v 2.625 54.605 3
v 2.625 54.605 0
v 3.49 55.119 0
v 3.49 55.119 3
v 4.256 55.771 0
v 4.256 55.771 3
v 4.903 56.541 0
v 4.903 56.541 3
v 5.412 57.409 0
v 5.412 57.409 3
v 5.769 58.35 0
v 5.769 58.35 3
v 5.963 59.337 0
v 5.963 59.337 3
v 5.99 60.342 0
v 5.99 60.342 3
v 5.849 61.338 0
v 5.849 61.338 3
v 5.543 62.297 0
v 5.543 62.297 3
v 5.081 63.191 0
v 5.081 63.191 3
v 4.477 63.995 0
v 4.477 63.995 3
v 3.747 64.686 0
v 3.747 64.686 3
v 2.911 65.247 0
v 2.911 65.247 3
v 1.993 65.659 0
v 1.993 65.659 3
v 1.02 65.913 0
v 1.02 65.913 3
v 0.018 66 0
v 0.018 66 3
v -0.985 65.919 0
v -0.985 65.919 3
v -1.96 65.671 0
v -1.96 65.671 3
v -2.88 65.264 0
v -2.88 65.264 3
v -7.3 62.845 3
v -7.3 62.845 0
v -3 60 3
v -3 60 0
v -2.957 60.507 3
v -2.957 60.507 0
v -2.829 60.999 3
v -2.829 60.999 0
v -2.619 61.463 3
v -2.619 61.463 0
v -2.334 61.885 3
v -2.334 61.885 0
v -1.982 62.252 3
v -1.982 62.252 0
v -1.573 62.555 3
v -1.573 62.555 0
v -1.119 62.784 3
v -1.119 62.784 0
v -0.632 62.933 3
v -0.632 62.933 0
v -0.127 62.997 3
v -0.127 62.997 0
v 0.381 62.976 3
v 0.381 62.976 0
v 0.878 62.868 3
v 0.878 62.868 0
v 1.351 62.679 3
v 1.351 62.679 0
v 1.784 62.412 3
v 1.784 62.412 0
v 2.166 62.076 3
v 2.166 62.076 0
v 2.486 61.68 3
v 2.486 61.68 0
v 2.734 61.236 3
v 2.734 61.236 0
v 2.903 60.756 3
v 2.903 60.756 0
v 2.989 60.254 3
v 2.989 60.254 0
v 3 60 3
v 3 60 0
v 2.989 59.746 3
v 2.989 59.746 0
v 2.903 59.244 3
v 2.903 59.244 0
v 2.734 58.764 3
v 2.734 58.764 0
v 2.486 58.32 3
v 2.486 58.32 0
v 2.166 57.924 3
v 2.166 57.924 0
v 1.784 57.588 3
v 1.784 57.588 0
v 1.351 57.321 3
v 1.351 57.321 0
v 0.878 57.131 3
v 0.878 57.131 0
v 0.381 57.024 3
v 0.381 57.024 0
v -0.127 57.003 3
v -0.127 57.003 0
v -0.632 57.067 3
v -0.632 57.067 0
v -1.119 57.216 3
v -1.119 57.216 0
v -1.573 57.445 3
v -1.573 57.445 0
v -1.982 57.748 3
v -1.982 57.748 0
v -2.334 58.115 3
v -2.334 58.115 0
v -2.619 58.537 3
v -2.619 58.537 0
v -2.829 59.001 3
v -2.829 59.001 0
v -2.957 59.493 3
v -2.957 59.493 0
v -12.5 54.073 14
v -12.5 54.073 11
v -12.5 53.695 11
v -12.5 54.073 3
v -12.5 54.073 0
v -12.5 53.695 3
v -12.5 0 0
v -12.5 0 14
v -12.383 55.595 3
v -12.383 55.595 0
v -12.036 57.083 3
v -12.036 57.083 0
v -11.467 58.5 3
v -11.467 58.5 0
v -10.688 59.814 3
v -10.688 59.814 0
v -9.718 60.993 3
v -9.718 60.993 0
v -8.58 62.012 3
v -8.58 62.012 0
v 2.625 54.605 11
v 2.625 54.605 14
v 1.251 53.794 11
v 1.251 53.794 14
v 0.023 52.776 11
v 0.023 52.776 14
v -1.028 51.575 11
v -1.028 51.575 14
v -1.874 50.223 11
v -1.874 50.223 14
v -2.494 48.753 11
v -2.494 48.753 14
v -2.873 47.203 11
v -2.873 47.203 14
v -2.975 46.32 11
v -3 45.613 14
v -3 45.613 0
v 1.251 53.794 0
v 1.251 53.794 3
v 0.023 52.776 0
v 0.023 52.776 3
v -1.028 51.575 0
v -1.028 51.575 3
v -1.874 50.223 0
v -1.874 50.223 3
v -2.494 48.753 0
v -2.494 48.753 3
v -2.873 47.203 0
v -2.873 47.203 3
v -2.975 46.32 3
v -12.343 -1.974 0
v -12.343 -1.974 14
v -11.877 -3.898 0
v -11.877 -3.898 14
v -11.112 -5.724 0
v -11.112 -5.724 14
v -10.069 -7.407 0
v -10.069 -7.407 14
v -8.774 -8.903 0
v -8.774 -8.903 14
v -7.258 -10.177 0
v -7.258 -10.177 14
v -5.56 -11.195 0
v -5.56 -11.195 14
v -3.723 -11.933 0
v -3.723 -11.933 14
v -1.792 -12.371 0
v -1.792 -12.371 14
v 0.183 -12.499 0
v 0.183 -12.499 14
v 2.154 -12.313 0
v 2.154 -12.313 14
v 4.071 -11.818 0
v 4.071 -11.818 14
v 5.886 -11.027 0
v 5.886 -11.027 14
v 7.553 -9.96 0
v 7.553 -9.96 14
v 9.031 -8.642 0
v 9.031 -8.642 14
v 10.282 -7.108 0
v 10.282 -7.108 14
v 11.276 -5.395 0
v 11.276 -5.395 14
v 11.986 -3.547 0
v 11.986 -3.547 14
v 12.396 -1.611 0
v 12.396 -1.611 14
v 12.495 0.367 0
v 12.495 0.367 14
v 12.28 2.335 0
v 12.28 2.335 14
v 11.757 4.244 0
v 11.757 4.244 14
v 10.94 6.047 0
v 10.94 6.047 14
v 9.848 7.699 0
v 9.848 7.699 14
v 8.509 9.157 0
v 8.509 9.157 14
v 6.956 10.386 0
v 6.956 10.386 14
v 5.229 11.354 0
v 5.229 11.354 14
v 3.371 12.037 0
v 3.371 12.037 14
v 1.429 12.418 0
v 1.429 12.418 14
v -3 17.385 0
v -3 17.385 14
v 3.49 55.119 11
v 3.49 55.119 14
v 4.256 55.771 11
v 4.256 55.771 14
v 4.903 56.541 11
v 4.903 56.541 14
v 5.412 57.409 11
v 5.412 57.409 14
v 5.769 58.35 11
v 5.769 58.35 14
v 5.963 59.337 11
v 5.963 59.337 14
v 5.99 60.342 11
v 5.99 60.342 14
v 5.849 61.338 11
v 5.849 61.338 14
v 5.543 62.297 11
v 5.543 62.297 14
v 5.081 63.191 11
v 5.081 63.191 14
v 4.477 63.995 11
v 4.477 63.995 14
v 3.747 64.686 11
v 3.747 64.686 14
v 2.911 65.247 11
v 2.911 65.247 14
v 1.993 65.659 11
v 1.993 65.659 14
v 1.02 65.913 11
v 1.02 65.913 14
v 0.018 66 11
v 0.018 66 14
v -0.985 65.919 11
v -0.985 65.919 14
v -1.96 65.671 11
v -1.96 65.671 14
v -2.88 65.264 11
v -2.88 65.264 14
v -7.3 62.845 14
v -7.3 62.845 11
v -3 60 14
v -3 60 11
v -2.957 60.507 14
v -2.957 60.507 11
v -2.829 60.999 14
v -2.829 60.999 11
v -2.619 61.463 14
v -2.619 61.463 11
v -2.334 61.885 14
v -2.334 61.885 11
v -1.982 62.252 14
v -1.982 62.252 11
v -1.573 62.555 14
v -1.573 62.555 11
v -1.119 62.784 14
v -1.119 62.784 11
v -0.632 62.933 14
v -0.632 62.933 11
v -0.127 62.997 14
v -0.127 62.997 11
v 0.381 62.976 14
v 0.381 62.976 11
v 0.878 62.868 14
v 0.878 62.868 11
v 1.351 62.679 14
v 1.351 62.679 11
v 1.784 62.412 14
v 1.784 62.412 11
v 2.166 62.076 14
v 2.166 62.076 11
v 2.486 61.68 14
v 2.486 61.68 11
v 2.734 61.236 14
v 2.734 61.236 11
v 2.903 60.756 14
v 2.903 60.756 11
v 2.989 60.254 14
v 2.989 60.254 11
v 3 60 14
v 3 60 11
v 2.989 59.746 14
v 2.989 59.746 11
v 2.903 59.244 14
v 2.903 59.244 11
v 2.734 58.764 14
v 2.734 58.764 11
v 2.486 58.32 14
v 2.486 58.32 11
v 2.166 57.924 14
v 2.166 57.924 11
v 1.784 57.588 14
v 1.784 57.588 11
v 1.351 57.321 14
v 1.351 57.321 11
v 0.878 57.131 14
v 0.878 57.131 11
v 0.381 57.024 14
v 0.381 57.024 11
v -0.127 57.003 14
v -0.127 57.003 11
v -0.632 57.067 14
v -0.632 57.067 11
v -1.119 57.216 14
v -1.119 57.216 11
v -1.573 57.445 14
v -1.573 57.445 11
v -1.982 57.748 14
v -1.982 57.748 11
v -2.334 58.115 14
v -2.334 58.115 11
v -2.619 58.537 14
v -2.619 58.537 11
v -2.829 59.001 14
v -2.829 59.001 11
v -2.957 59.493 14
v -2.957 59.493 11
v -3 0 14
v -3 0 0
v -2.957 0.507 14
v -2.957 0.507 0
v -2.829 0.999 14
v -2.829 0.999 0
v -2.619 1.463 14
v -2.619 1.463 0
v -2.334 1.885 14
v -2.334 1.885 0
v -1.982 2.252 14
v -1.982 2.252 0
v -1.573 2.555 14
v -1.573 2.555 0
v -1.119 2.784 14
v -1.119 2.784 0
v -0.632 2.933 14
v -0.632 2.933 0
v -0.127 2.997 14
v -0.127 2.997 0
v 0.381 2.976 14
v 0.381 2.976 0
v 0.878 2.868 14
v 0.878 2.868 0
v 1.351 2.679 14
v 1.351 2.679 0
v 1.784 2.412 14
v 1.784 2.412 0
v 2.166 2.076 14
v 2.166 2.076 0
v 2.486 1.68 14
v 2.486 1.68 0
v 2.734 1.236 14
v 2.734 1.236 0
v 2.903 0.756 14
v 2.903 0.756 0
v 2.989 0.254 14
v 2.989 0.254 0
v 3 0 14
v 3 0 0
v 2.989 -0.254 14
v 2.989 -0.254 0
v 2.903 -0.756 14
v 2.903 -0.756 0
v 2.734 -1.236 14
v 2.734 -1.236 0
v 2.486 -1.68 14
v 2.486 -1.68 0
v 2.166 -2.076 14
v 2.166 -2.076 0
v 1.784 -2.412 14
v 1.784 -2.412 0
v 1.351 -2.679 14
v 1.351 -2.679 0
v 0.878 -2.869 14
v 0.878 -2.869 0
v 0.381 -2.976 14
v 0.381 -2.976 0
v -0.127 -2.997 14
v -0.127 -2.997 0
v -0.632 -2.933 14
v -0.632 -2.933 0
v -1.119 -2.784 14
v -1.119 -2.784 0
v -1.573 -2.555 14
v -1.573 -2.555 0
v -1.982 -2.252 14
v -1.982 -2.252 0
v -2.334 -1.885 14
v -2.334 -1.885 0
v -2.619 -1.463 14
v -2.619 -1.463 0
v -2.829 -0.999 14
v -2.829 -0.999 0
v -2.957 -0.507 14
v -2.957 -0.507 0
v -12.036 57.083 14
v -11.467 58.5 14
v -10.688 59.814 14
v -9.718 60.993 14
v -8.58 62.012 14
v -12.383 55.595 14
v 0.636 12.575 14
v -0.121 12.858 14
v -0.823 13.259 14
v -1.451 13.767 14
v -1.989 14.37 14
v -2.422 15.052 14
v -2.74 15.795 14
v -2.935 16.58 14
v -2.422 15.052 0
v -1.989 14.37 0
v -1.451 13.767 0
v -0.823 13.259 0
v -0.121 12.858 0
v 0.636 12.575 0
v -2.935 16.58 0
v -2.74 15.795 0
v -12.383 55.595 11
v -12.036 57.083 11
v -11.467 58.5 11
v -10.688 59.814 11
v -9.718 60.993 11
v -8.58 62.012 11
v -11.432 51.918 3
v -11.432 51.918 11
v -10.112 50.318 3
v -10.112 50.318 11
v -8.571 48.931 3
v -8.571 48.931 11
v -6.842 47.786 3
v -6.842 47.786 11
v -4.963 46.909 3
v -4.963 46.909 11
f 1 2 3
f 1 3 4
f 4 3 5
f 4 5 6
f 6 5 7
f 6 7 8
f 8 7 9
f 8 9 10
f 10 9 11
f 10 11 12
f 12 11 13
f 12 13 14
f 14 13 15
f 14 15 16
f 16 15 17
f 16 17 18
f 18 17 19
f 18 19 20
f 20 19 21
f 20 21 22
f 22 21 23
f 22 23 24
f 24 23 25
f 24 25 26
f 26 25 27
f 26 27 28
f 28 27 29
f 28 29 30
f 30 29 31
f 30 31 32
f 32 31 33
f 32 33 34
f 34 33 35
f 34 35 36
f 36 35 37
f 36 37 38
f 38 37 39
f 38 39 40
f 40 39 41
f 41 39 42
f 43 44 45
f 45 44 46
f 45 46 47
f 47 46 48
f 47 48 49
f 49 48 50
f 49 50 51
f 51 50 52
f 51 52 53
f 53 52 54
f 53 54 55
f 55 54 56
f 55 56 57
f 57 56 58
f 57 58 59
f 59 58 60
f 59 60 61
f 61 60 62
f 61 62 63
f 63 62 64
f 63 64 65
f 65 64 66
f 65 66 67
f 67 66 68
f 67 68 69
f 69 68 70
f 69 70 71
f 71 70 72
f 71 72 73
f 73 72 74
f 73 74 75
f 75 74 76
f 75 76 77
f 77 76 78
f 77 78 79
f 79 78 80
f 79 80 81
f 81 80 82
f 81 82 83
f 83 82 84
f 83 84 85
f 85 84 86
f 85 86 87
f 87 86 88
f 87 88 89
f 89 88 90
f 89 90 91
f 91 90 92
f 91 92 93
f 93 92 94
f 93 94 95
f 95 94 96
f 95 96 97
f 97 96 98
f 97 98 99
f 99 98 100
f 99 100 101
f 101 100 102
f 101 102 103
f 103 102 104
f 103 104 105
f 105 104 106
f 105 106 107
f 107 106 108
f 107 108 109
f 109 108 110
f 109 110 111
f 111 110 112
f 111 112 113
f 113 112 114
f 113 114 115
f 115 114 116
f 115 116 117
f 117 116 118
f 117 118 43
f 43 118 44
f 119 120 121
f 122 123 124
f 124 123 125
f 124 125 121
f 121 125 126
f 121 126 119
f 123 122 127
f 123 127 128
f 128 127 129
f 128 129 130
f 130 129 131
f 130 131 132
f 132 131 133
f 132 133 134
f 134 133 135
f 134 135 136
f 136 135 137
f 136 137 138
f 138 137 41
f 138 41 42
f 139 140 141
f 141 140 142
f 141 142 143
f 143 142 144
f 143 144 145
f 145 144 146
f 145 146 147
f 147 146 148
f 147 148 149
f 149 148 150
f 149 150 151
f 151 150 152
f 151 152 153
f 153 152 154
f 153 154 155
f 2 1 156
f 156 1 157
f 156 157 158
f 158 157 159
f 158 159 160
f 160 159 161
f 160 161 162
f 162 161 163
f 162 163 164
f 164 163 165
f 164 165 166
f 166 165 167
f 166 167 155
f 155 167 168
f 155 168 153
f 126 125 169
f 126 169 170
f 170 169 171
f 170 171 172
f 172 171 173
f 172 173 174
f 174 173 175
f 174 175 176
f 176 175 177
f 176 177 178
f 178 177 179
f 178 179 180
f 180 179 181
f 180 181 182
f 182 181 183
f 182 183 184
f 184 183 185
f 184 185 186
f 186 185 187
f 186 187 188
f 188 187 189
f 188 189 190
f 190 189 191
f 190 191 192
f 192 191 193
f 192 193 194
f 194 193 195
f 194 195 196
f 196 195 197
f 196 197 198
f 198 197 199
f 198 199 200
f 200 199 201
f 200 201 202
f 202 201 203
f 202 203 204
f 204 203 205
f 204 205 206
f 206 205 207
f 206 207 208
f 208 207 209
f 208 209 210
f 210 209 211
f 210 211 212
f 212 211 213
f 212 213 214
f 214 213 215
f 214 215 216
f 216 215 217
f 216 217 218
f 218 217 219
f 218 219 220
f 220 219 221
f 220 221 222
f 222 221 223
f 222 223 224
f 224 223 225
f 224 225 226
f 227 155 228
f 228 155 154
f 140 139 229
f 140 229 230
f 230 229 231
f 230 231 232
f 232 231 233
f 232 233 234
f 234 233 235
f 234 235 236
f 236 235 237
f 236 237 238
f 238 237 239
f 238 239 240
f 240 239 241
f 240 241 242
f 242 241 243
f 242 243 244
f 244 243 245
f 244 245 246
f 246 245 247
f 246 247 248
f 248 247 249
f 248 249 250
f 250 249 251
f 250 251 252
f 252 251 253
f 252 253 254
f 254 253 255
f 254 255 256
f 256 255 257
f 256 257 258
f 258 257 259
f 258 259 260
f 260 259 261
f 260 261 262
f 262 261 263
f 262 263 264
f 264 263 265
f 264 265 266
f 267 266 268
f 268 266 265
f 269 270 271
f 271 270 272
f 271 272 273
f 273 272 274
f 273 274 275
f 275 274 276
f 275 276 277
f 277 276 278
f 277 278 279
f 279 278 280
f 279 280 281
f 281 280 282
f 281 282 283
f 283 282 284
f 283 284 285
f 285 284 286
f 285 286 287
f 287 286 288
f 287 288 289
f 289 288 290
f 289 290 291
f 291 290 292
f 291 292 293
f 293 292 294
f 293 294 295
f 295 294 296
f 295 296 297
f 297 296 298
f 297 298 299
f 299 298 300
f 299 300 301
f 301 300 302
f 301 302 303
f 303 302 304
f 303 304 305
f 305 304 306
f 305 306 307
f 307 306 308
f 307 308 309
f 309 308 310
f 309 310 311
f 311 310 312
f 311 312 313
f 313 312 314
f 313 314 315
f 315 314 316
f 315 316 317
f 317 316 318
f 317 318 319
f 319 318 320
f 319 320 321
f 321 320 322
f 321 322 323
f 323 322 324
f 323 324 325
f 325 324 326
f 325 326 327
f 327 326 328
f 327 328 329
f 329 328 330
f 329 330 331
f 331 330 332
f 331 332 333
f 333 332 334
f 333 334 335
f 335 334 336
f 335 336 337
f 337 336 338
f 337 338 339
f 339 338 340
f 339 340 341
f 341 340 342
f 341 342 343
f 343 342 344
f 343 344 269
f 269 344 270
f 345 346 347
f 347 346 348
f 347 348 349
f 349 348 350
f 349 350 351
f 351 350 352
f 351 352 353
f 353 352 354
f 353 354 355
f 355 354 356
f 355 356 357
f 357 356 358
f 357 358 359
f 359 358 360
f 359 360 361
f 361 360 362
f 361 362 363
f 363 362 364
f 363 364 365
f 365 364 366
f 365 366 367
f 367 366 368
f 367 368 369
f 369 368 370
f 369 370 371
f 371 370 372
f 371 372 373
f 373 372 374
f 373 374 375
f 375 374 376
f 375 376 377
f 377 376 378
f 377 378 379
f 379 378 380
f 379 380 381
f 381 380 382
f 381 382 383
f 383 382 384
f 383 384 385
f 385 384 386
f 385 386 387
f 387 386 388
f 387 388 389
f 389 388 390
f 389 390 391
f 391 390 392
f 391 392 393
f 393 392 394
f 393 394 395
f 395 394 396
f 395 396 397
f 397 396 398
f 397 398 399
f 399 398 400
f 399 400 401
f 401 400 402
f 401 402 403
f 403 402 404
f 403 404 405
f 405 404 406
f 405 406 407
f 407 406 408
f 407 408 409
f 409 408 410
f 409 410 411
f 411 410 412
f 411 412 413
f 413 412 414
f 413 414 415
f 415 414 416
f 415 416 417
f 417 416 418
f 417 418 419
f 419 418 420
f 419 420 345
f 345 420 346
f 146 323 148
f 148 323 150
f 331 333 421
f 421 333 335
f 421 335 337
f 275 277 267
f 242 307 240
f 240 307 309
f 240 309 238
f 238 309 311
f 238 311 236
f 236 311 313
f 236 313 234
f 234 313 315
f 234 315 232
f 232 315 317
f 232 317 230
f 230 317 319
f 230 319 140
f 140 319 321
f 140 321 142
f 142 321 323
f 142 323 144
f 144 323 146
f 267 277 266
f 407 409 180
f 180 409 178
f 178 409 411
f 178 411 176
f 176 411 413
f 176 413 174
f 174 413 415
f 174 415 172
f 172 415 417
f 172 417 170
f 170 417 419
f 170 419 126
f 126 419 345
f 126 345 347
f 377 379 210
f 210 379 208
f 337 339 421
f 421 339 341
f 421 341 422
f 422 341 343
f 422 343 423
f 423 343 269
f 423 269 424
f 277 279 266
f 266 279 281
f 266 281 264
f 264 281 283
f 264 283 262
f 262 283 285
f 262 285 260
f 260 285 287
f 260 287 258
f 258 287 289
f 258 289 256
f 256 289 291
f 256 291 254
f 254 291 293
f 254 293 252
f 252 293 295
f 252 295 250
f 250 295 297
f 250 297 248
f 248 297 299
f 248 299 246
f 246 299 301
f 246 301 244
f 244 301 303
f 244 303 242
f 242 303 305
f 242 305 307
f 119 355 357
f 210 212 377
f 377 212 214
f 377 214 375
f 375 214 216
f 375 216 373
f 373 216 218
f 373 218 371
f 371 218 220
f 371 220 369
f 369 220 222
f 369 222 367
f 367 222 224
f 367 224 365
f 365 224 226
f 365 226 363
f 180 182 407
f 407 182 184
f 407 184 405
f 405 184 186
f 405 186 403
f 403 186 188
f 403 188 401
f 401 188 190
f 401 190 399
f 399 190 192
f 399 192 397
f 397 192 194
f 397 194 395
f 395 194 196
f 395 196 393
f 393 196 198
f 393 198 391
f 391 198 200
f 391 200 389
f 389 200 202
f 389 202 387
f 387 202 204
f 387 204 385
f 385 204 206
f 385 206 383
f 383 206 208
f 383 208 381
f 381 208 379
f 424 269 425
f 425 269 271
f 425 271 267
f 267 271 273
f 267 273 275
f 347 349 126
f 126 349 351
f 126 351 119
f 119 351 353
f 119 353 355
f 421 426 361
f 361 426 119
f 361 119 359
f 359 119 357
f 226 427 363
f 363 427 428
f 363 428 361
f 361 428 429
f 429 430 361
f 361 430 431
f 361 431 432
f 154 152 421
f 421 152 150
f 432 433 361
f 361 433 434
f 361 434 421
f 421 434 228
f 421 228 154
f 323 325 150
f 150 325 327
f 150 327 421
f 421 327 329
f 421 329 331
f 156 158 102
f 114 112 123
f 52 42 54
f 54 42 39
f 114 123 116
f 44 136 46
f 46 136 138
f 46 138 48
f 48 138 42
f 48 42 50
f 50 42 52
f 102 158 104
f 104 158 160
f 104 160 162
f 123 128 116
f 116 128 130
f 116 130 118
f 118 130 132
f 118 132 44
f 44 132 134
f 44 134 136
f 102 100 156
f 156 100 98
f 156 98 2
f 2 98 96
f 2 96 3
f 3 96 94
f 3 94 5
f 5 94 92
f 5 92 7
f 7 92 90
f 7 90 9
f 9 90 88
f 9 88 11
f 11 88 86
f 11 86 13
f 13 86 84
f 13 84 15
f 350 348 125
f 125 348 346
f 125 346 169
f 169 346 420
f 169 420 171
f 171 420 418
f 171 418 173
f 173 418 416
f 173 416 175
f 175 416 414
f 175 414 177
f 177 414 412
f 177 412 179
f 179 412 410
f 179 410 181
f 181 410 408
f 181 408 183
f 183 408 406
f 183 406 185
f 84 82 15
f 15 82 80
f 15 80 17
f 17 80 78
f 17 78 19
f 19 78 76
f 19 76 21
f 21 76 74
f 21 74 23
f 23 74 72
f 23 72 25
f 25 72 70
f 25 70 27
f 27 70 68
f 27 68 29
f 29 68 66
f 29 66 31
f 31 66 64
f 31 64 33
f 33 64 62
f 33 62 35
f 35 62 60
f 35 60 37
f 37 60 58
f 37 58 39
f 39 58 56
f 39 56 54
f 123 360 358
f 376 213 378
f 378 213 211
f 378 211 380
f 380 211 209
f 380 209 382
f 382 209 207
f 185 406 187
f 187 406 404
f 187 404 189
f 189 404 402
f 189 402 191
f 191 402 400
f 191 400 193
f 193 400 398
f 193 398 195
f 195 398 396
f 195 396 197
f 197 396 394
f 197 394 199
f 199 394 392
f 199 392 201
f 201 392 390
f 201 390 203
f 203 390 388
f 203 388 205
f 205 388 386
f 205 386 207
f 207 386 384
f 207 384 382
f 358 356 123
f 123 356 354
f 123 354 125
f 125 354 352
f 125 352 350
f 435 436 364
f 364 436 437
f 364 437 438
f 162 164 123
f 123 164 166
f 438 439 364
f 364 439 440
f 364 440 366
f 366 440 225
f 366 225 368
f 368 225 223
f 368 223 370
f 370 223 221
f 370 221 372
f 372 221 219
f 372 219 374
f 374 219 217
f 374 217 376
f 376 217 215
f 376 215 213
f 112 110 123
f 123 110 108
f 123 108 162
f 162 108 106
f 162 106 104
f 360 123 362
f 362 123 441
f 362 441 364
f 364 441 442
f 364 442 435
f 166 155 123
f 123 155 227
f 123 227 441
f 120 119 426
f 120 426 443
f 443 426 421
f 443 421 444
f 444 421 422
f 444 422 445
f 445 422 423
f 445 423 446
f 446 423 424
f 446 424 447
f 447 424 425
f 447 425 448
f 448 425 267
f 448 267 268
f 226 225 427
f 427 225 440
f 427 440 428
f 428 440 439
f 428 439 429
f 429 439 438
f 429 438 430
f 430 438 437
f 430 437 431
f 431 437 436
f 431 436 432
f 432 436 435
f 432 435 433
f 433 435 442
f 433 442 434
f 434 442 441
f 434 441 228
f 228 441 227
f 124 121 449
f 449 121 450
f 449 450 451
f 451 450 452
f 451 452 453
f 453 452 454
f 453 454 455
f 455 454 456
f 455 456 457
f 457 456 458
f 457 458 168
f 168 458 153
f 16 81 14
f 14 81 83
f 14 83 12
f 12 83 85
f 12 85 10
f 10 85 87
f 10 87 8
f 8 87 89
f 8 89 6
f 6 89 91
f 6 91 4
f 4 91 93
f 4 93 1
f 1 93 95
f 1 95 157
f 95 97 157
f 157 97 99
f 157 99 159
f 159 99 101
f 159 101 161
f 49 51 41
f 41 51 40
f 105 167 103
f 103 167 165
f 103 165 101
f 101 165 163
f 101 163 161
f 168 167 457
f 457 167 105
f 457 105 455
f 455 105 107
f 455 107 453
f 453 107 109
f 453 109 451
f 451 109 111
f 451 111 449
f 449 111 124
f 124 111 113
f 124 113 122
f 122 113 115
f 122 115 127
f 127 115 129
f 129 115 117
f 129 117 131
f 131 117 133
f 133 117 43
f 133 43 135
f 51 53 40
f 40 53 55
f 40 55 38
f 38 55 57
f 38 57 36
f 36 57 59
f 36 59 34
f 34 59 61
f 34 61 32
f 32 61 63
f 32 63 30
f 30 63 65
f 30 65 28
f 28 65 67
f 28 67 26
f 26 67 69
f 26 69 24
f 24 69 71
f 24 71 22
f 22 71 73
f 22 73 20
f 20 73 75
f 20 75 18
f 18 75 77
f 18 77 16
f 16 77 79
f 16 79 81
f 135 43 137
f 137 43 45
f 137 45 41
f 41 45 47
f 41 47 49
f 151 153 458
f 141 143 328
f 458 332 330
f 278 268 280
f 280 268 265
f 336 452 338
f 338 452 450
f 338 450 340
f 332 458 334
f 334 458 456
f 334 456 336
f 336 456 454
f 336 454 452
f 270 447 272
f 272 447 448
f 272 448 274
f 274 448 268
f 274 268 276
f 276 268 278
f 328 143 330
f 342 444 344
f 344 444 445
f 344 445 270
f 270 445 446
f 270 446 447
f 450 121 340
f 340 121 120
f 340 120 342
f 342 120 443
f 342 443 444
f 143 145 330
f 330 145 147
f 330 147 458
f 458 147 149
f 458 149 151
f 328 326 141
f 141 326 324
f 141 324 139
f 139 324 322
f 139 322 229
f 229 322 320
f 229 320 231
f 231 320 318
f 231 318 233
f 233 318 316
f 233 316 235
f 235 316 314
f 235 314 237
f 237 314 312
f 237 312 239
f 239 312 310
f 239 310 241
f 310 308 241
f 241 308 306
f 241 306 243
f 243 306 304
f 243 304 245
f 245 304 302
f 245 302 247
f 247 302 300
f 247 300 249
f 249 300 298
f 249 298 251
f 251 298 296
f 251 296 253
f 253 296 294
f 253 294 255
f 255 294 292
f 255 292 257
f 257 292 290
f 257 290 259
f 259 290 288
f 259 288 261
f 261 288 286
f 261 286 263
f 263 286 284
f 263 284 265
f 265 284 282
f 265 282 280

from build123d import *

# Parameters (mm, degrees)
CROQUIS1_R              = 3
SALIENTE_EXTRUIR1_DEPTH = 14
REDONDEO1_R             = 10
REDONDEO2_R             = 10
REDONDEO3_R             = 5
CORTAR_EXTRUIR1_START   = -3
CROQUIS2_R              = 14
CORTAR_EXTRUIR1_DEPTH   = 8


with BuildPart() as part:
    # Croquis1 → Saliente-Extruir1 (new body)
    with BuildSketch(Plane.XY):
        with BuildLine():
            ThreePointArc((-12.5, 0), (9.842509843, -7.705517504), (-3, 12.1346611))
            Line((-3, 12.1346611), (-3, 54.803847577))
            ThreePointArc((-3, 54.803847577), (5.999605182, 59.93116932), (-2.88, 65.263610928))
            Line((-2.88, 65.263610928), (-12.5, 60))
            Line((-12.5, 60), (-12.5, 0))
        make_face()
        Circle(CROQUIS1_R, mode=Mode.SUBTRACT)
        with Locations((0, 60)):
            Circle(CROQUIS1_R, mode=Mode.SUBTRACT)
    extrude(amount=SALIENTE_EXTRUIR1_DEPTH)

    # Redondeo1
    redondeo1_edges = [part.edges().sort_by_distance(p)[0] for p in [
        (-12.5, 60, 7),
    ]]
    fillet(redondeo1_edges, radius=REDONDEO1_R)

    # Redondeo2
    redondeo2_edges = [part.edges().sort_by_distance(p)[0] for p in [
        (-3, 54.803847577, 7),
    ]]
    fillet(redondeo2_edges, radius=REDONDEO2_R)

    # Redondeo3
    redondeo3_edges = [part.edges().sort_by_distance(p)[0] for p in [
        (-3, 12.1346611, 7),
    ]]
    fillet(redondeo3_edges, radius=REDONDEO3_R)

    # Croquis2 → Cortar-Extruir1 (cut)
    with BuildSketch(Plane.XY.offset(14).offset(CORTAR_EXTRUIR1_START)):
        with Locations((0, 60)):
            Circle(CROQUIS2_R)
    extrude(amount=-CORTAR_EXTRUIR1_DEPTH, mode=Mode.SUBTRACT)


solid = part.part
